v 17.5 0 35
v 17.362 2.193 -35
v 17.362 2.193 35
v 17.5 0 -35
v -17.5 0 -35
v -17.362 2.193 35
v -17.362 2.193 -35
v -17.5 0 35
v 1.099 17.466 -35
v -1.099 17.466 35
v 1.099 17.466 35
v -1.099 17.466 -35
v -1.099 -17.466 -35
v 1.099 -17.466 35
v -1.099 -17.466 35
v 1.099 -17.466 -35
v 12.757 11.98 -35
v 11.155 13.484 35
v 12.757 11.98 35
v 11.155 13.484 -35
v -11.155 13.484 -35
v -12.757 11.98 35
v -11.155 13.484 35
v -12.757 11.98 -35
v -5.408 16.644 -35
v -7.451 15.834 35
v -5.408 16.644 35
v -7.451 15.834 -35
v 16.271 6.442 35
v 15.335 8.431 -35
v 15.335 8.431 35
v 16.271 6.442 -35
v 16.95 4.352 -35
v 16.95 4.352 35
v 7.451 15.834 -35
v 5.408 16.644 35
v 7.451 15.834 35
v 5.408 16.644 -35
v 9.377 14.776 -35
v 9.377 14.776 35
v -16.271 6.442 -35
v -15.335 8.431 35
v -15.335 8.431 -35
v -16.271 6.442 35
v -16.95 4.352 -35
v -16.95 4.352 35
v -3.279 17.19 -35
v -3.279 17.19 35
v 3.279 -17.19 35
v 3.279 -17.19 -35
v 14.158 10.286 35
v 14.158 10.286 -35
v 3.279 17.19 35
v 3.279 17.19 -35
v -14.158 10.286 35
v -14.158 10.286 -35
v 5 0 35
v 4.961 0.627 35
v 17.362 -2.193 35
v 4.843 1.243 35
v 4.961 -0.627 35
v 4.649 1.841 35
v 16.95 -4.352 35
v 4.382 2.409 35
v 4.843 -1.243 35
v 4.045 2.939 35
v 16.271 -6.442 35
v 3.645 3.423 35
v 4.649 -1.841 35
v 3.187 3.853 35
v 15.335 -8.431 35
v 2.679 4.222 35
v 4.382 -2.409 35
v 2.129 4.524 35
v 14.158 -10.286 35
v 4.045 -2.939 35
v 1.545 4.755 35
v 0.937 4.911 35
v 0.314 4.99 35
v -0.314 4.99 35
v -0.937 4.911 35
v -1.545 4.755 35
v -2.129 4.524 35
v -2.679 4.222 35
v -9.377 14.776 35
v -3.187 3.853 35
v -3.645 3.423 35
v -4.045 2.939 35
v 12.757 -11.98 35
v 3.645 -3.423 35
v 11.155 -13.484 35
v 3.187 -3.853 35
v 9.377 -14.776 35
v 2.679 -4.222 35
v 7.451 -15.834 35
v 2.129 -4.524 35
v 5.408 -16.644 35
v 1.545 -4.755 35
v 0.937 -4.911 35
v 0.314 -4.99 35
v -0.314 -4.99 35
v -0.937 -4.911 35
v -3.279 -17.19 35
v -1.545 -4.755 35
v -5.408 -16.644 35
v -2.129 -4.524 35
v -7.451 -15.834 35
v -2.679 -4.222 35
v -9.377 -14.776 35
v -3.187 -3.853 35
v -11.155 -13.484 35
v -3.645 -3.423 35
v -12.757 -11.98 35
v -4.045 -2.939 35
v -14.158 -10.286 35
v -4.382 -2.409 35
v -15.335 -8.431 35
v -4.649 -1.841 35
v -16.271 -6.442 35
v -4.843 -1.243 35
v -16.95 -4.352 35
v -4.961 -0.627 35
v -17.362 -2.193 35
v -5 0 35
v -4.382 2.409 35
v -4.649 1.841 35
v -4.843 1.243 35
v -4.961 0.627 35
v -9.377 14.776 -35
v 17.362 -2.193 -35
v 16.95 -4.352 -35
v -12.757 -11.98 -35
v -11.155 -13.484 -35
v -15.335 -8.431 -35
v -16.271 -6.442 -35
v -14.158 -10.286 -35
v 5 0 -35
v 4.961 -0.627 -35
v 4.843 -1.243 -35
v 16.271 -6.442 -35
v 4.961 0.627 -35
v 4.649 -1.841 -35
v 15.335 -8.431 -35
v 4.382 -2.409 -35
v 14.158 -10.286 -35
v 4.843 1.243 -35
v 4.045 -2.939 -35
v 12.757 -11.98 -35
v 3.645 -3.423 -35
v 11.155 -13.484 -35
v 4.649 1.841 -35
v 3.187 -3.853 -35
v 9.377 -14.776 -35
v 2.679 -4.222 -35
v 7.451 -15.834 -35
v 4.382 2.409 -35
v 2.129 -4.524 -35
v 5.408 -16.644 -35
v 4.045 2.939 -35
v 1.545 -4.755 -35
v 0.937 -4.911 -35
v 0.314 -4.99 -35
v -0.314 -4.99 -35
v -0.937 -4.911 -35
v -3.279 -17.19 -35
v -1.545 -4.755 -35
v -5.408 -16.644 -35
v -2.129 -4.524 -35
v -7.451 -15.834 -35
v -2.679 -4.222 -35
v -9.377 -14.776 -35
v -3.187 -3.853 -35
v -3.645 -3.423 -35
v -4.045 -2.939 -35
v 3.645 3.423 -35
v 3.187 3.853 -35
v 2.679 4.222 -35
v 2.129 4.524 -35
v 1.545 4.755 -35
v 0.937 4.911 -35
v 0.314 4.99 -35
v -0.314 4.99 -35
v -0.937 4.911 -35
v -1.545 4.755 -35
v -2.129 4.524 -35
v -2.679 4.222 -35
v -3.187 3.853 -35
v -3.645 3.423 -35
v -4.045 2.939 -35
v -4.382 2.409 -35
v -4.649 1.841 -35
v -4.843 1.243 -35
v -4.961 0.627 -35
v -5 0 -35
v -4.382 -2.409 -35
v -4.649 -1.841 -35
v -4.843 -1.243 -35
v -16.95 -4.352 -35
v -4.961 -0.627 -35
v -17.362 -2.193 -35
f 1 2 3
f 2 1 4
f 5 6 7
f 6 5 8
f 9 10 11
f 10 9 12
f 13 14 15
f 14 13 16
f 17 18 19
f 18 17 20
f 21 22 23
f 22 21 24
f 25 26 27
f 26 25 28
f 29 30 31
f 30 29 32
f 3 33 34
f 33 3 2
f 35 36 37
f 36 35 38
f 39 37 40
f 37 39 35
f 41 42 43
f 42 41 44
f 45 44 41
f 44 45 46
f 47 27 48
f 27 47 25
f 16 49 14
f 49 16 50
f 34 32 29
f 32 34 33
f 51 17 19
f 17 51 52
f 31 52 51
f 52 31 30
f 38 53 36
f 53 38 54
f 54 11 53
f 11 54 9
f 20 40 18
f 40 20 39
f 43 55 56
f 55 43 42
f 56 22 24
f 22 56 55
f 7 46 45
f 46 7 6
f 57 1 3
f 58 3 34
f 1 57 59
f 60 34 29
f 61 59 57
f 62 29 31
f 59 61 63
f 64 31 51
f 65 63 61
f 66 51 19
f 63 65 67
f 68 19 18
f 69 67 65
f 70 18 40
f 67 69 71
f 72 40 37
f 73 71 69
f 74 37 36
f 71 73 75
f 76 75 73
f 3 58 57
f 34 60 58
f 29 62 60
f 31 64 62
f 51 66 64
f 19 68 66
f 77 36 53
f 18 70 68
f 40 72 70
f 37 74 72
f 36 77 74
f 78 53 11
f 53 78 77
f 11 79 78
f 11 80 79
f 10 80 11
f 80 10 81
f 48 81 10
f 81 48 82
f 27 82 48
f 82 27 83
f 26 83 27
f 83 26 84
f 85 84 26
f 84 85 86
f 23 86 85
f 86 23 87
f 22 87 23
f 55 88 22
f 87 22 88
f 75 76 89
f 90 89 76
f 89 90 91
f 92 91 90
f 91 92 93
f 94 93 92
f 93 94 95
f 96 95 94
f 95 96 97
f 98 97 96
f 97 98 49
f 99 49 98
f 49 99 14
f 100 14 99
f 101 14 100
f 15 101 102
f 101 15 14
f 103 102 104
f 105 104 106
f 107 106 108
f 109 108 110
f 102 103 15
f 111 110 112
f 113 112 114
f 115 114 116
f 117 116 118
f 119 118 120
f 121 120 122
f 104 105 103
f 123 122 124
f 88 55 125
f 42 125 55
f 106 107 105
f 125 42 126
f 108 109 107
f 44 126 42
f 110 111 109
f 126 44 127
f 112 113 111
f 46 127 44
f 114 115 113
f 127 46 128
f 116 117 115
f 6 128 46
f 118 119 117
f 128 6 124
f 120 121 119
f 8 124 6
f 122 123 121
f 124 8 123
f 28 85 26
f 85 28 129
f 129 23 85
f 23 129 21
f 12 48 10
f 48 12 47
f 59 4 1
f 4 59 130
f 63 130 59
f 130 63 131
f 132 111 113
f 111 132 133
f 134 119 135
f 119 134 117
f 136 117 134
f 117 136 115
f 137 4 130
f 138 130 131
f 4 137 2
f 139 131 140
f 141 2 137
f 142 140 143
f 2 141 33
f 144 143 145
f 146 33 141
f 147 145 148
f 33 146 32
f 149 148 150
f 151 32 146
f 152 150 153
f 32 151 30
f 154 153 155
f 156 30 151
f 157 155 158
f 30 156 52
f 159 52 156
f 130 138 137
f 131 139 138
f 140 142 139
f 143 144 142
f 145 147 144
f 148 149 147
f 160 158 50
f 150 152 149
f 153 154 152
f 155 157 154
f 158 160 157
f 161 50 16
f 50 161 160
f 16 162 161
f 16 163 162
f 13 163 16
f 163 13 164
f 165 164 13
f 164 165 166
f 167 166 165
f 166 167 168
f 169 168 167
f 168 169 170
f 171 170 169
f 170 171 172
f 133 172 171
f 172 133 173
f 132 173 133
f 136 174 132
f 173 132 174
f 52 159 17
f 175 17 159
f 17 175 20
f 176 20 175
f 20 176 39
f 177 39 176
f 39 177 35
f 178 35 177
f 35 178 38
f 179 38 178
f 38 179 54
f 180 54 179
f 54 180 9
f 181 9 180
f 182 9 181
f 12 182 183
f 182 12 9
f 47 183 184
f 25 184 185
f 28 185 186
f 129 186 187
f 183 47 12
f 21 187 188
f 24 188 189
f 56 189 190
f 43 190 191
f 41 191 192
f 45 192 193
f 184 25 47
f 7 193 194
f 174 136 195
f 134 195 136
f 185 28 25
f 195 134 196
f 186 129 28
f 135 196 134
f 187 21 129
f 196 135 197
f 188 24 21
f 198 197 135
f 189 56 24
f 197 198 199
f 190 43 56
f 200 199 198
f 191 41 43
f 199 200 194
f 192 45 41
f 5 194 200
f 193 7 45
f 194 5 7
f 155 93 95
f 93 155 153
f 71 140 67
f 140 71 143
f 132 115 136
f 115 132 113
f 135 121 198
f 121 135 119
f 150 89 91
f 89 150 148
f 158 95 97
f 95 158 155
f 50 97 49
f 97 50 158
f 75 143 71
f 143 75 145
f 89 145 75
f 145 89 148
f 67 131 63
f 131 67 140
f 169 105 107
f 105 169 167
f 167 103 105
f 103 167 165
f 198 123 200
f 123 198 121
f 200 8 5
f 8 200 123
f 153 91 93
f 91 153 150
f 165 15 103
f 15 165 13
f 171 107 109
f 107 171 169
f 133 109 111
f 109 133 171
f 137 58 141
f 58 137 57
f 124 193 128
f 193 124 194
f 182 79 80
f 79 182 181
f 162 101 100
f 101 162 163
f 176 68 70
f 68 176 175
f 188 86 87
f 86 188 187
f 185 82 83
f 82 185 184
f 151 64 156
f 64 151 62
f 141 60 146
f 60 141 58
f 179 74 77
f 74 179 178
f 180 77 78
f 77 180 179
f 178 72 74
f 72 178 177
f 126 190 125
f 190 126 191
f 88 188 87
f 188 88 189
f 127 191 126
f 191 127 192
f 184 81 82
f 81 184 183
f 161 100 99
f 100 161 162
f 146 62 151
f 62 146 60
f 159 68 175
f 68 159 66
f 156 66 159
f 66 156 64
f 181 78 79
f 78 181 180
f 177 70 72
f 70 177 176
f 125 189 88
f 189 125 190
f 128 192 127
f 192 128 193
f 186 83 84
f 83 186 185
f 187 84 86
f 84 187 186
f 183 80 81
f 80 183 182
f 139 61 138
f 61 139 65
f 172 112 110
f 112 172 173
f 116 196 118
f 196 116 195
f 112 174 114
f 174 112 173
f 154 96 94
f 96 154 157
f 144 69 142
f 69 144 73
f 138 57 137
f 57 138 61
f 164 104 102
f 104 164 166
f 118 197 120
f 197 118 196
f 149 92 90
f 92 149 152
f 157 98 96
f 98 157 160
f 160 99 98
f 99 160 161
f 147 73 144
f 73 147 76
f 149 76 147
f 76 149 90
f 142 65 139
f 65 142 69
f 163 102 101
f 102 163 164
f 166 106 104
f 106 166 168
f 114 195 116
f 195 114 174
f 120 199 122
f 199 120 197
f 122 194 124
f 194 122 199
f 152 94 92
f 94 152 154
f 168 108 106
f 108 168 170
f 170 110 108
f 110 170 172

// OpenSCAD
$fn = 50;


difference() {
	union() {
		translate(v = [0, 0, -35.0000000000]) {
			cylinder(h = 70, r = 17.5000000000);
		}
	}
	union() {
		translate(v = [0, 0, -100.0000000000]) {
			cylinder(h = 200, r = 5);
		}
	}
}
